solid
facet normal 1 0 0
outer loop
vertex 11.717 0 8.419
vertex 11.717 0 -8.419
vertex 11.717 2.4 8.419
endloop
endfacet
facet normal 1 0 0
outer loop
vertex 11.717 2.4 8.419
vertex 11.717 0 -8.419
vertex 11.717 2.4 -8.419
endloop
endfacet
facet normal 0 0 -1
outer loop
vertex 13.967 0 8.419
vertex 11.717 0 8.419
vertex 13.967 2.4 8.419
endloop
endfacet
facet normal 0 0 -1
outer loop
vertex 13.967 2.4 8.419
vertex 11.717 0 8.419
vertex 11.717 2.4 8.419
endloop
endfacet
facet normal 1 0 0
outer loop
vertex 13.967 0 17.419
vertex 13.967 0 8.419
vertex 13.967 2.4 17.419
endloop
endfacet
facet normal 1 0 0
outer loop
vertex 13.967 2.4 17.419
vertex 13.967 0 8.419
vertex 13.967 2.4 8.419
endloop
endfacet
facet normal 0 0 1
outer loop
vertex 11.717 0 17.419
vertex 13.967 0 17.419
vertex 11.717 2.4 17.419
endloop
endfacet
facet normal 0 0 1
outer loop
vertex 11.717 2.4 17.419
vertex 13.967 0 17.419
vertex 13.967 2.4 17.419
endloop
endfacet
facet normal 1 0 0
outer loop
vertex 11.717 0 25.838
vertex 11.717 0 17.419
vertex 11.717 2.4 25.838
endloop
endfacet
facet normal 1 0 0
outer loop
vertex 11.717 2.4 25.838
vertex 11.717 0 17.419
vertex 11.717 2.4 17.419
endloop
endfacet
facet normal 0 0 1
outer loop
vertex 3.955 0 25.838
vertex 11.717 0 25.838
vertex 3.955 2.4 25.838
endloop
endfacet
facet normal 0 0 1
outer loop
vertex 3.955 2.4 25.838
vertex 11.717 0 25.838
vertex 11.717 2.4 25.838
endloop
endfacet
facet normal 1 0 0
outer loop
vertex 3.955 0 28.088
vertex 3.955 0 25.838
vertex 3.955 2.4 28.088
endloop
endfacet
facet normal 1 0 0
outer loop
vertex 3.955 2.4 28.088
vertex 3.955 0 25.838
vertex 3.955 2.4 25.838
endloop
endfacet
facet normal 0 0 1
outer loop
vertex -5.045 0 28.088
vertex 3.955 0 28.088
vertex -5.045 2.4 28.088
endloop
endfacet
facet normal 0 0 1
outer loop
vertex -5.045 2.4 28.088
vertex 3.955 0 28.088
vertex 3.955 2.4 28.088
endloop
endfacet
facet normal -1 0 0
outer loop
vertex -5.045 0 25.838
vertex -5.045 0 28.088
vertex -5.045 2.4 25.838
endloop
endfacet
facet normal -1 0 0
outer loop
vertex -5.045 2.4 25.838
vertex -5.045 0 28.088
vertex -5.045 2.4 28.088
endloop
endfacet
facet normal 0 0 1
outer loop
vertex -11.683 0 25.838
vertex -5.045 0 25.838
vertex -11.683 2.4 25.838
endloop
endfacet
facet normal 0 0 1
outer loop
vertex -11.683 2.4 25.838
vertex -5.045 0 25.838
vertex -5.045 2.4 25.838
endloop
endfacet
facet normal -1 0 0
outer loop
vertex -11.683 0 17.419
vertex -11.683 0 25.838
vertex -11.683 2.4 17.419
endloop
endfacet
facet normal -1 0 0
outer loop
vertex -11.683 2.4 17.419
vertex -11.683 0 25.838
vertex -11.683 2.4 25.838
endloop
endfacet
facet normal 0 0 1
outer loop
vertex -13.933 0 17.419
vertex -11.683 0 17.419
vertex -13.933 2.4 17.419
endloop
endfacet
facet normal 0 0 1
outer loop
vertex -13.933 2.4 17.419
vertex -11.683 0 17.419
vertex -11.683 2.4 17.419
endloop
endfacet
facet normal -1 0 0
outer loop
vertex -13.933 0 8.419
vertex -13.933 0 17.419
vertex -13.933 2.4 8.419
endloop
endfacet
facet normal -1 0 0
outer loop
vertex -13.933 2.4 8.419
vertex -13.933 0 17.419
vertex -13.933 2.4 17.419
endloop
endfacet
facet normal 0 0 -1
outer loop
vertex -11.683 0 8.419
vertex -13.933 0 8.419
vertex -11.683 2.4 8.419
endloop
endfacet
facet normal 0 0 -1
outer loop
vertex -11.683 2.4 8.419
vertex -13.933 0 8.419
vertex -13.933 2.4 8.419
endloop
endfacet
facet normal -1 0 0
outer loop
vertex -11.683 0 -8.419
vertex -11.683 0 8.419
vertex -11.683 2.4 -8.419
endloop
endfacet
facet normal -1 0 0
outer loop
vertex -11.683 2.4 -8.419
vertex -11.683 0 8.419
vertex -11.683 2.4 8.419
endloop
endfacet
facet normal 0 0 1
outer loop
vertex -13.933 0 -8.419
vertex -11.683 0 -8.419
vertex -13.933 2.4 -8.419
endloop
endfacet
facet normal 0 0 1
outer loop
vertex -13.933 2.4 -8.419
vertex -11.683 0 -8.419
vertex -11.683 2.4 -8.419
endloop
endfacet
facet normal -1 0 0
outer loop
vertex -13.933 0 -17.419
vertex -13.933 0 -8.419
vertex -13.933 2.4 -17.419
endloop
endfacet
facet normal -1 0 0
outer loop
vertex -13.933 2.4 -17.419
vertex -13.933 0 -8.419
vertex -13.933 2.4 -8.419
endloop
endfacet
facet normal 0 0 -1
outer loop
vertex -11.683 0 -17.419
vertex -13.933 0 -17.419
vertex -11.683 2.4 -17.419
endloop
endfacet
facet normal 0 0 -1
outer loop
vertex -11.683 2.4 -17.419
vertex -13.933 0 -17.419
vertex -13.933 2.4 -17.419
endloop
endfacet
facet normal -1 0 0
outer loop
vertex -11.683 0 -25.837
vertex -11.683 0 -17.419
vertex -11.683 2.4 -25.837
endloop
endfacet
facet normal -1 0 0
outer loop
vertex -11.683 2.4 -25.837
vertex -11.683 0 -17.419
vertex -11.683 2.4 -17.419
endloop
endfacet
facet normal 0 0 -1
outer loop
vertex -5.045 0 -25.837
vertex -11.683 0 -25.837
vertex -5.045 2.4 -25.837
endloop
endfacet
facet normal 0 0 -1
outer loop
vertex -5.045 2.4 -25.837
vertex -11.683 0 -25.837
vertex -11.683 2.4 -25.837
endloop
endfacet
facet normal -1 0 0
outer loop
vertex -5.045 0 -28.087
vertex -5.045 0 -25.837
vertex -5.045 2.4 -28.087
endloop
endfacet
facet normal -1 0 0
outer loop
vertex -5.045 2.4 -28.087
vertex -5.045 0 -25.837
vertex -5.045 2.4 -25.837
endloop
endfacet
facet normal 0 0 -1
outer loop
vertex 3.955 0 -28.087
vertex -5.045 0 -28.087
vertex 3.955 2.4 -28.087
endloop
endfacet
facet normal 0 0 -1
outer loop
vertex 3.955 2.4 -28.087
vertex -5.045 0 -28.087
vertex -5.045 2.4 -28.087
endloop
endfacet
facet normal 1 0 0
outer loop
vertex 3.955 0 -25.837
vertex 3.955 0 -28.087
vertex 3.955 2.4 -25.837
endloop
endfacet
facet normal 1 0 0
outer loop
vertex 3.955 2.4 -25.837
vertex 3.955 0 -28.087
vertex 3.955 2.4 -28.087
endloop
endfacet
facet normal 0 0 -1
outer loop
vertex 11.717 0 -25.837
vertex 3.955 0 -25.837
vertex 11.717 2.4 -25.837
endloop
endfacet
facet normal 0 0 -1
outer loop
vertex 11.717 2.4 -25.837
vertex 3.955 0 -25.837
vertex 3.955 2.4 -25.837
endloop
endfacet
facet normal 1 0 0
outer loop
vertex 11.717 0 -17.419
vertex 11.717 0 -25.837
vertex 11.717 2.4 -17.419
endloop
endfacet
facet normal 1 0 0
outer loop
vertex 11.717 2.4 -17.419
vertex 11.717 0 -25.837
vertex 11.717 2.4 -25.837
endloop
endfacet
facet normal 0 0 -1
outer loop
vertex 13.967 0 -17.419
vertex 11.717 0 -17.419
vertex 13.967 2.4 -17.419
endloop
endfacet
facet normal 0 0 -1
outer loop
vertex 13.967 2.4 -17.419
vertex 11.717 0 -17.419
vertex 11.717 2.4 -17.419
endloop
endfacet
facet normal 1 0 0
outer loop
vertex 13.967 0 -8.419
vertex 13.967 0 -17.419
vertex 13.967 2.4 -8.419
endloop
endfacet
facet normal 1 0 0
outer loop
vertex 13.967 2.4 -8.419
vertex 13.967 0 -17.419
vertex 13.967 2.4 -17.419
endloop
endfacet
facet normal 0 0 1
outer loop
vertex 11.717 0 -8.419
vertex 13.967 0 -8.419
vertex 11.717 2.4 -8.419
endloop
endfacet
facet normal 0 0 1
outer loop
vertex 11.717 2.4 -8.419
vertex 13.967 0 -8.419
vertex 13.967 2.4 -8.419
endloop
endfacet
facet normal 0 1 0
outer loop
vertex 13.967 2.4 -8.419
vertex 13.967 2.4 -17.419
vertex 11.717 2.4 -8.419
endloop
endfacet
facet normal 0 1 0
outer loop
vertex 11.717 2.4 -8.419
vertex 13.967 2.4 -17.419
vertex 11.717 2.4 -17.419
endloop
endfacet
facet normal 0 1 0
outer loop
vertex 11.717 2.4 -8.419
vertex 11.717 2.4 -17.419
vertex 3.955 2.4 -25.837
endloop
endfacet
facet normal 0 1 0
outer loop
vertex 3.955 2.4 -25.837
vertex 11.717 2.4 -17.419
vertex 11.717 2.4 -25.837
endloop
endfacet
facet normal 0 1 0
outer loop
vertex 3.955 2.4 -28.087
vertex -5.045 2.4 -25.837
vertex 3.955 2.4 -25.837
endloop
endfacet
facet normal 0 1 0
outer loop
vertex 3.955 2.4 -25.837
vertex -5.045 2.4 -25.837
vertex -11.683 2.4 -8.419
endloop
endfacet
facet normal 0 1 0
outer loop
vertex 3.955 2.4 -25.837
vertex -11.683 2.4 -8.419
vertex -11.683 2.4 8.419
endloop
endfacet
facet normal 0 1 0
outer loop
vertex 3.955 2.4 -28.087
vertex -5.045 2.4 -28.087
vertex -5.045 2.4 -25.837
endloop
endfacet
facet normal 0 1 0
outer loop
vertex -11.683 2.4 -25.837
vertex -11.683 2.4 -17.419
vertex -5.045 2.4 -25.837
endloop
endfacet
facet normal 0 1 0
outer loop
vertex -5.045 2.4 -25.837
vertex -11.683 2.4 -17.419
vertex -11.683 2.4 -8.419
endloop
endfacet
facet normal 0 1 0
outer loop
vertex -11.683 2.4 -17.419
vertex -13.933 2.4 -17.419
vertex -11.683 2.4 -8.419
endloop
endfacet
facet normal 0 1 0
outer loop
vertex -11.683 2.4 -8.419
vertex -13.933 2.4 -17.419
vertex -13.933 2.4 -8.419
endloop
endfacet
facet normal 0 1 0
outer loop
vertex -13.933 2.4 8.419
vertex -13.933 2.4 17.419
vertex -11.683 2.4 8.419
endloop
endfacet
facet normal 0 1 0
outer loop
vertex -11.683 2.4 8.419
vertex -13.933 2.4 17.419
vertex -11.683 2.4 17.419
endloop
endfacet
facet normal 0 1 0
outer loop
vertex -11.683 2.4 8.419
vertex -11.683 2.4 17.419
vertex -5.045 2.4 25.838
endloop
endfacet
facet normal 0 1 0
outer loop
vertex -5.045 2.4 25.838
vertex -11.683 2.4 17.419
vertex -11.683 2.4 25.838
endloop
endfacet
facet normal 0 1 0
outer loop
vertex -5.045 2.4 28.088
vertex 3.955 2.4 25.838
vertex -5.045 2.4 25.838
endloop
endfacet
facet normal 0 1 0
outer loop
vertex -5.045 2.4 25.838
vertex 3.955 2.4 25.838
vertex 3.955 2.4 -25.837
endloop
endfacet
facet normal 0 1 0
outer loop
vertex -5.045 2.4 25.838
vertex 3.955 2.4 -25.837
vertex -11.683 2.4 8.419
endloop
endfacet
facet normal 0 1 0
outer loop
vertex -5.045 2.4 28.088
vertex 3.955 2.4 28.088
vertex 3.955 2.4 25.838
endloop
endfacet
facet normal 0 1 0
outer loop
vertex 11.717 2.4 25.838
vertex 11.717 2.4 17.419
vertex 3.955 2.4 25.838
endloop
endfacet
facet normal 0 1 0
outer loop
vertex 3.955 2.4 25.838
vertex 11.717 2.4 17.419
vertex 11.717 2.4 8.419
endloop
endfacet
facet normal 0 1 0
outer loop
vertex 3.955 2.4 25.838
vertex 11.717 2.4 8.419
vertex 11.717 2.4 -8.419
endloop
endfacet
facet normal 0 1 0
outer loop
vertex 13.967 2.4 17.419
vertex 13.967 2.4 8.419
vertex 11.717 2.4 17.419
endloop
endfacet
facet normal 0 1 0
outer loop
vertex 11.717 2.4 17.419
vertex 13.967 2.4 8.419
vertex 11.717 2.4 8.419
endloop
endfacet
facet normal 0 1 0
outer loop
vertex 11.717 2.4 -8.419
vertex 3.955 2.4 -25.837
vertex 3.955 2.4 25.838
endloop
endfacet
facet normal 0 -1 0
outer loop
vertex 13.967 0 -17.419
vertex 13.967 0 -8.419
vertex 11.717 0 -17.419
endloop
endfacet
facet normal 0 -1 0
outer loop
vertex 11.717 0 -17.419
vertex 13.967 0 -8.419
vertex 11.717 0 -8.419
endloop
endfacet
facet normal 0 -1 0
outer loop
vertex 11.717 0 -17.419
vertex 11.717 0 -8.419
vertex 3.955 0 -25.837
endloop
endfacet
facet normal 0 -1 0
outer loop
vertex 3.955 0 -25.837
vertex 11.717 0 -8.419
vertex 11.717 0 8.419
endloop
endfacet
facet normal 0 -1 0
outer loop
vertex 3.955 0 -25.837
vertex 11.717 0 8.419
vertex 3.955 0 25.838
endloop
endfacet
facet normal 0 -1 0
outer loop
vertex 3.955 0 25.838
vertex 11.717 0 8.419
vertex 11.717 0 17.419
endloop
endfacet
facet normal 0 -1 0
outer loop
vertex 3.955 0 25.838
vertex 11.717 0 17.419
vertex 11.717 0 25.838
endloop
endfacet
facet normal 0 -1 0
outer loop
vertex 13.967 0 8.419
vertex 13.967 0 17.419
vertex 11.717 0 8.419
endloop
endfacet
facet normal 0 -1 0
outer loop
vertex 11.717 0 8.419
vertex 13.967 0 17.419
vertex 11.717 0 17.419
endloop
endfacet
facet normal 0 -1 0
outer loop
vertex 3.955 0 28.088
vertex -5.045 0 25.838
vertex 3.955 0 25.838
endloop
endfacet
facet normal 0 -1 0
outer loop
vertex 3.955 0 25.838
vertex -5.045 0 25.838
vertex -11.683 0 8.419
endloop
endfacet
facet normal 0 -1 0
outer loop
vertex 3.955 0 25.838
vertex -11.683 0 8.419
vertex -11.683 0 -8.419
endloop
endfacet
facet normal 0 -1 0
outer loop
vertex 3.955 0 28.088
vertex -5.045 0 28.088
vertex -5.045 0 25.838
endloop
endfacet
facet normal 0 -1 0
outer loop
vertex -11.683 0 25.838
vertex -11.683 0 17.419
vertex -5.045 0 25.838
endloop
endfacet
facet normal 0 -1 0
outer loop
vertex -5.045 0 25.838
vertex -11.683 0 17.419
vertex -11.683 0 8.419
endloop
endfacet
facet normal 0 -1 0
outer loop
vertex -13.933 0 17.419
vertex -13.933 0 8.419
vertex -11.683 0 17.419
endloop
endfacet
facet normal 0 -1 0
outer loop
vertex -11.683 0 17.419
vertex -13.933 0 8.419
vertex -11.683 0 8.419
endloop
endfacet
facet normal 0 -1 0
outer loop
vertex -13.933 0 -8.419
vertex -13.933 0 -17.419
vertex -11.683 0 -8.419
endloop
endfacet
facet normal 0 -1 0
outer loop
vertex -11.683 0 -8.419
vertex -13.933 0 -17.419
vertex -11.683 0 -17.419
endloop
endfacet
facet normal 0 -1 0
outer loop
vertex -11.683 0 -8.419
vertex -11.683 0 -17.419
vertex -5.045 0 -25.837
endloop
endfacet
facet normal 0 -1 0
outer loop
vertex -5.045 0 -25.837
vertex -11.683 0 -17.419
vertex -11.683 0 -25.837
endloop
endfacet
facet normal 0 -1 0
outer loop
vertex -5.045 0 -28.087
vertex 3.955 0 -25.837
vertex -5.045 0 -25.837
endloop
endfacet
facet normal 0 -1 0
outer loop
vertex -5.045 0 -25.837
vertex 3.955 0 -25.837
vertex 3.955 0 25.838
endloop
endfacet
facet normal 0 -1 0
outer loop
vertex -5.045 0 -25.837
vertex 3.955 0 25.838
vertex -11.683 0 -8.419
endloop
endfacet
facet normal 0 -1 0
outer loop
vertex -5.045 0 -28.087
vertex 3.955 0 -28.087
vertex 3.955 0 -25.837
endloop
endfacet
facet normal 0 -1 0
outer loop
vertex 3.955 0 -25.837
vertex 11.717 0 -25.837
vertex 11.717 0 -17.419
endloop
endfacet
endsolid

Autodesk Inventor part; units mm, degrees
ref_plane "YZ Plane" through (0, 0, 0) normal (1, 0, 0) x (0, 1, 0)
ref_plane "XZ Plane" through (0, 0, 0) normal (0, 1, 0) x (-1, 0, 0)
ref_plane "XY Plane" through (0, 0, 0) normal (0, 0, 1) x (1, 0, 0)
sketch "Boceto1" plane through (0, 0, 0) normal (0, 1, 0) x (-1, 0, 0)
  line L0 (-11.7171, -8.4187) -> (-13.9671, -8.4187)
  line L1 (-13.9671, -8.4187) -> (-13.9671, -17.4187)
  line L2 (-13.9671, -17.4187) -> (-11.7171, -17.4187)
  line L3 (-11.7171, -17.4187) -> (-11.7171, -25.8375)
  line L4 (-11.7171, -25.8375) -> (-3.9546, -25.8375)
  line L5 (-3.9546, -25.8375) -> (-3.9546, -28.0875)
  line L6 (-3.9546, -28.0875) -> (5.0454, -28.0875)
  line L7 (5.0454, -28.0875) -> (5.0454, -25.8375)
  line L8 (5.0454, -25.8375) -> (11.6829, -25.8375)
  line L9 (11.6829, -25.8375) -> (11.6829, -17.4194)
  line L10 (11.6829, -17.4194) -> (13.9329, -17.4187)
  line L11 (13.9329, -17.4187) -> (13.9329, -8.4187)
  line L12 (13.9329, -8.4187) -> (11.6829, -8.4187)
  line L13 (11.6829, -8.4187) -> (11.6829, 8.4188)
  line L14 (11.6829, 8.4188) -> (13.9329, 8.4188)
  line L15 (13.9329, 8.4188) -> (13.9329, 17.4188)
  line L16 (13.9329, 17.4188) -> (11.6829, 17.4188)
  line L17 (11.6829, 17.4188) -> (11.6829, 21.3375)
  line L18 (11.6829, 21.3375) -> (11.6829, 25.8375)
  line L19 (11.6829, 25.8375) -> (5.0454, 25.8375)
  line L20 (5.0454, 25.8375) -> (5.0454, 28.0875)
  line L21 (5.0454, 28.0875) -> (-3.9546, 28.0875)
  line L22 (-3.9546, 28.0875) -> (-3.9546, 25.8375)
  line L23 (-3.9546, 25.8375) -> (-10.5921, 25.8375)
  line L24 (-10.5921, 25.8375) -> (-10.9671, 25.8375)
  line L25 (-10.9671, 25.8375) -> (-11.7171, 25.8375)
  line L26 (-11.7171, 25.8375) -> (-11.7171, 17.4188)
  line L27 (-11.7171, 17.4188) -> (-13.9671, 17.4188)
  line L28 (-13.9671, 17.4188) -> (-13.9671, 8.4188)
  line L29 (-13.9671, 8.4188) -> (-11.7171, 8.4188)
  line L30 (-11.7171, 8.4188) -> (-11.7171, -8.4187)
extrude "Extrusión1" add sketch "Boceto1" along normal blind 2.4
properties part number "costat2"
